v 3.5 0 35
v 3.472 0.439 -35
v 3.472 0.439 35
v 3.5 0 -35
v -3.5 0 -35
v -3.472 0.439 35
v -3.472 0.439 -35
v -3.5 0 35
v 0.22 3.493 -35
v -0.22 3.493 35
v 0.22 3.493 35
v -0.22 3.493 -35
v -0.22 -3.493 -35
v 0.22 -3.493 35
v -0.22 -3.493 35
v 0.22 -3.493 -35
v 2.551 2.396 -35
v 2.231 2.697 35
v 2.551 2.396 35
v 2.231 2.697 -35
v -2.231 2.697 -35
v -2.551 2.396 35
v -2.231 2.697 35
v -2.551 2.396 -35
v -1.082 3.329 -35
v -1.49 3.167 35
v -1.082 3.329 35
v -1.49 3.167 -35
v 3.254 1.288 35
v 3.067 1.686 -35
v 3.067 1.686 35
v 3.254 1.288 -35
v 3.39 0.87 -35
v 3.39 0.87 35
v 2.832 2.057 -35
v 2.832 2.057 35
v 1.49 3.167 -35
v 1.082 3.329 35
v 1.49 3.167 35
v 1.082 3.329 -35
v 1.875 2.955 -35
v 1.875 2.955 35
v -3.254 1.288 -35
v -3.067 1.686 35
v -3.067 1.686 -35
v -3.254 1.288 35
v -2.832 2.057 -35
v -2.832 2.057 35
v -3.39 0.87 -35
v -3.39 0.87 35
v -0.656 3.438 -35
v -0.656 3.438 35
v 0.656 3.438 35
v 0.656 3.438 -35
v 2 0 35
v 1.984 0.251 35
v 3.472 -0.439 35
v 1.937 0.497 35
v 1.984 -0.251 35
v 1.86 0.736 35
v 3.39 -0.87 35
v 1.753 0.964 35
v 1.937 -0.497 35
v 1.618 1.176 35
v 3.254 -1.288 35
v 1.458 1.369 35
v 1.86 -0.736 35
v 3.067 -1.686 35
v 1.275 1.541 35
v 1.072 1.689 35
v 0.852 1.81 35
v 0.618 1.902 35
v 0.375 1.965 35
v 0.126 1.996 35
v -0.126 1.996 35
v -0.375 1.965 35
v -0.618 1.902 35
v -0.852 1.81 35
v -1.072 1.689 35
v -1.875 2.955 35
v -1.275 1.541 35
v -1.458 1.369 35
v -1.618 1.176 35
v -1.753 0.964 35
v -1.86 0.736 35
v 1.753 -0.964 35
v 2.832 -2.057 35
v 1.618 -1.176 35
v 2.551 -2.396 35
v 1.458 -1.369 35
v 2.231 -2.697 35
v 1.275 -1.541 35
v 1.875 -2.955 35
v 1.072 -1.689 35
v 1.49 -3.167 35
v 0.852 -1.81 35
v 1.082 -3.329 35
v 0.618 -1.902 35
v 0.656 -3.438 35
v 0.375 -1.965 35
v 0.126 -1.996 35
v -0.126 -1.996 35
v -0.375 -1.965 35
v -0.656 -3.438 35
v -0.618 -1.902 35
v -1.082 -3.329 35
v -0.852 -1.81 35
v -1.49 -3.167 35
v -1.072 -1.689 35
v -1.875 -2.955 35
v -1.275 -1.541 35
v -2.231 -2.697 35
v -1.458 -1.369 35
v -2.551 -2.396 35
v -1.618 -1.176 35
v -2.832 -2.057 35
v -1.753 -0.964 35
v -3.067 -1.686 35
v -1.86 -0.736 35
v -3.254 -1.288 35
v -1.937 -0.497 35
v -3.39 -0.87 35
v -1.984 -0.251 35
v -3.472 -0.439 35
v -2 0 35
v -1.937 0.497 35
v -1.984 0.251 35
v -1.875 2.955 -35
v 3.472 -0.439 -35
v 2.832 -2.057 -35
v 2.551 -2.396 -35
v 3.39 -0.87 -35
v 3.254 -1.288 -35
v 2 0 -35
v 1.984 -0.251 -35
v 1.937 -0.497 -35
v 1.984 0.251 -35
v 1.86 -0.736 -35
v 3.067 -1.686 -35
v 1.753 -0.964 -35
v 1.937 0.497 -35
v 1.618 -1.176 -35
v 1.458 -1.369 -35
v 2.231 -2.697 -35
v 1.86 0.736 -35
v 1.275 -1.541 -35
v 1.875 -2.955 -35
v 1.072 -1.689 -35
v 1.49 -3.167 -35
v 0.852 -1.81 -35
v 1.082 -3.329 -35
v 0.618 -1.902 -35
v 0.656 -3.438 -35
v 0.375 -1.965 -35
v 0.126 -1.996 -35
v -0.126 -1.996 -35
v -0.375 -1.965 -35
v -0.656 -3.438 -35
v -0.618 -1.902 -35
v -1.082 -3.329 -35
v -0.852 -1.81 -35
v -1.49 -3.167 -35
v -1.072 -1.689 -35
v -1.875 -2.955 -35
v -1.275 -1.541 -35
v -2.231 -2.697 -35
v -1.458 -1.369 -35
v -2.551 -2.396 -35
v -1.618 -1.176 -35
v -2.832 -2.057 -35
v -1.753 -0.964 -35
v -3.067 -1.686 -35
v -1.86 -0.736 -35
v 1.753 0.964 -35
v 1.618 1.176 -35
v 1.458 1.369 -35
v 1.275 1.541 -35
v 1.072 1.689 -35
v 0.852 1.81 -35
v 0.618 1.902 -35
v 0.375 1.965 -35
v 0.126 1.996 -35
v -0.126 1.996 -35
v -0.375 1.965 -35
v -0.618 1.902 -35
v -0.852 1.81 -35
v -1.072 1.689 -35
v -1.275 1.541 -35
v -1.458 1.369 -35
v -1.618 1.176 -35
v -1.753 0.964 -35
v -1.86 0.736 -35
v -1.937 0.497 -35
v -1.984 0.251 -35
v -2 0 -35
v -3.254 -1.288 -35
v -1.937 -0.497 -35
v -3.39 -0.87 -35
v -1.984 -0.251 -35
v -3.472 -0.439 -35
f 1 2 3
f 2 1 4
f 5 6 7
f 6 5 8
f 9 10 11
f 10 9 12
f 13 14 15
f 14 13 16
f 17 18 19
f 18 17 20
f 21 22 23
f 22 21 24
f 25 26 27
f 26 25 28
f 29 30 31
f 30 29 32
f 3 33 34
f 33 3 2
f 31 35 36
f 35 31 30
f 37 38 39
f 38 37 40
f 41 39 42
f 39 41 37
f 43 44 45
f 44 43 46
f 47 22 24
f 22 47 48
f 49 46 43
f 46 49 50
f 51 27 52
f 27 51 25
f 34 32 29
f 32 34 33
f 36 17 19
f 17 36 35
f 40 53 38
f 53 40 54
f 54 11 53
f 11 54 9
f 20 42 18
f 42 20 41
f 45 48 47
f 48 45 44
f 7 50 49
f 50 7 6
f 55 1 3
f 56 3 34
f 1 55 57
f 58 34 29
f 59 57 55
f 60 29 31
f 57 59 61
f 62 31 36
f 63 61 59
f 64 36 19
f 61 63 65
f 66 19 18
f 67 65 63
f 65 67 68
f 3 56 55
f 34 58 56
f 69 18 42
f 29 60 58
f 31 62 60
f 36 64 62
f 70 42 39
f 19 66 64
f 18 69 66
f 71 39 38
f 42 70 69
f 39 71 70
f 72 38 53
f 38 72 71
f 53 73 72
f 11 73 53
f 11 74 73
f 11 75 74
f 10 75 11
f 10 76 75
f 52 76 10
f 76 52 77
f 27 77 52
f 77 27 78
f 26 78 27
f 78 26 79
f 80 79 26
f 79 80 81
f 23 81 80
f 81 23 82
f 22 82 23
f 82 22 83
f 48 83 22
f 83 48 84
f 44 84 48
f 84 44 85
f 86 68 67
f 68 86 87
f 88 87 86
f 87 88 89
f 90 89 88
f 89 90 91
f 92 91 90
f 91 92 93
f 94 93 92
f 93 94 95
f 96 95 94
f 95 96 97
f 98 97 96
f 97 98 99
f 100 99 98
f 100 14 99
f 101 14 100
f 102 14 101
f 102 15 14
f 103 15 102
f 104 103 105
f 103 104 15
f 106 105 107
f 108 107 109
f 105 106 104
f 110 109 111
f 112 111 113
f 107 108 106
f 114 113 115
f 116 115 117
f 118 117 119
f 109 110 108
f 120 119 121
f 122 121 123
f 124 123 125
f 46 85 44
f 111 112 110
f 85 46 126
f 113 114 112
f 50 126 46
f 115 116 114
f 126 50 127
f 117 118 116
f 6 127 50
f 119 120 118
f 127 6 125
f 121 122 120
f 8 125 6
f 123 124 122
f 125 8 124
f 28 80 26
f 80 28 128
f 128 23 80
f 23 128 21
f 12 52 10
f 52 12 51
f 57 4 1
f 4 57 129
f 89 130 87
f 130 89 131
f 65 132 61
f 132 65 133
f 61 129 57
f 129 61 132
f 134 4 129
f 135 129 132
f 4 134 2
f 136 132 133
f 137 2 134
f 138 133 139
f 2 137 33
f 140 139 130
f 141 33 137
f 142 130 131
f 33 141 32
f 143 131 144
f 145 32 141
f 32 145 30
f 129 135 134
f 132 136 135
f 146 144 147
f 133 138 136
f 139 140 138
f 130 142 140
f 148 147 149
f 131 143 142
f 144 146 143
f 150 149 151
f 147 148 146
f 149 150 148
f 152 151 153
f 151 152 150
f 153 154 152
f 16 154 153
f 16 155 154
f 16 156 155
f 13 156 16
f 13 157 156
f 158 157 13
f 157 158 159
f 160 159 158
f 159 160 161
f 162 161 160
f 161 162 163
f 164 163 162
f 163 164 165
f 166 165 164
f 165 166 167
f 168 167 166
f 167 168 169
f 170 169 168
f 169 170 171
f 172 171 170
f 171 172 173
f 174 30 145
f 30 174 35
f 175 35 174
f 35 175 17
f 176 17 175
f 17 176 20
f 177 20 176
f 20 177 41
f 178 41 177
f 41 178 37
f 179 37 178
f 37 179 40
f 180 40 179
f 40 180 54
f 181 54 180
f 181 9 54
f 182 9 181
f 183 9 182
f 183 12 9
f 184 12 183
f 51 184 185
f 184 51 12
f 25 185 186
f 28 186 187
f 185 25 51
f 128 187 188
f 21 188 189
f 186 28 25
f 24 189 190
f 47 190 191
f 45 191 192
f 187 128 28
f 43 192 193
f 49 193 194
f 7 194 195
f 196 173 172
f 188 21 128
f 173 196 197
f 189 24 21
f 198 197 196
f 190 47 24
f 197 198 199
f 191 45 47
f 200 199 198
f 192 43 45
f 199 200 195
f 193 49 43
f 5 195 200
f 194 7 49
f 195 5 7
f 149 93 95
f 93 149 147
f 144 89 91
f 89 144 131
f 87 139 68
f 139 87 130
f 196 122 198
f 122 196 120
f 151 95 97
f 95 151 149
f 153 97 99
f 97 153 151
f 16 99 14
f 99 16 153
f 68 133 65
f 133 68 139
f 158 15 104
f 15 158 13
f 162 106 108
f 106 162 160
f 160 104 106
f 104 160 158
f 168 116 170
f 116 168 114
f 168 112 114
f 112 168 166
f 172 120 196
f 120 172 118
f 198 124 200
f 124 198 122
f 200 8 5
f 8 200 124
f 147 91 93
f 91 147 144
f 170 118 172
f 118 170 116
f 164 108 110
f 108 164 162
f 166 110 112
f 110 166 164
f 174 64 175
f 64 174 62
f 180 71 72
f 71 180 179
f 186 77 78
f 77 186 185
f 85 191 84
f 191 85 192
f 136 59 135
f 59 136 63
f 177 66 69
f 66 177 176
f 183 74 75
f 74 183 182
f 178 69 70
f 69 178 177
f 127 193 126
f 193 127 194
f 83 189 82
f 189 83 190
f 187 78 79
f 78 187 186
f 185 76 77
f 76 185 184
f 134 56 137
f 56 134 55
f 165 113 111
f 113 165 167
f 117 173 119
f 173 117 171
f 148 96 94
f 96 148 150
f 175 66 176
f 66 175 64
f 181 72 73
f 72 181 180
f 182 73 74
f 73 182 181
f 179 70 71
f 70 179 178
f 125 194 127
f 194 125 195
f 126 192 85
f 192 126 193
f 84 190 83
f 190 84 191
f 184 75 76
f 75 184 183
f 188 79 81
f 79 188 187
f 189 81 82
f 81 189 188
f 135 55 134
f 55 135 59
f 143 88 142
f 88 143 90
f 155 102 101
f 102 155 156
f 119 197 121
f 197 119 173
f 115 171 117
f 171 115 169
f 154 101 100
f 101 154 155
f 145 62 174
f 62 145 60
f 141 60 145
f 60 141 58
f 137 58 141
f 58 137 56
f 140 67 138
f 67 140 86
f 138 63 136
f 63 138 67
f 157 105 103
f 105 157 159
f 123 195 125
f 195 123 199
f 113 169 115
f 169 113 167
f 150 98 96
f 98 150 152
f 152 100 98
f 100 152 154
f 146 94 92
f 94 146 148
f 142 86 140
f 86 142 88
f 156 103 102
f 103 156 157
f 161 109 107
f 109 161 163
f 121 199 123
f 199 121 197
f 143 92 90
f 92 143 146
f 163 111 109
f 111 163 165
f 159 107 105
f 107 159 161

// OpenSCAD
$fn = 50;


difference() {
	union() {
		translate(v = [0, 0, -35.0000000000]) {
			cylinder(h = 70, r = 3.5000000000);
		}
	}
	union() {
		translate(v = [0, 0, -100.0000000000]) {
			cylinder(h = 200, r = 2);
		}
	}
}
